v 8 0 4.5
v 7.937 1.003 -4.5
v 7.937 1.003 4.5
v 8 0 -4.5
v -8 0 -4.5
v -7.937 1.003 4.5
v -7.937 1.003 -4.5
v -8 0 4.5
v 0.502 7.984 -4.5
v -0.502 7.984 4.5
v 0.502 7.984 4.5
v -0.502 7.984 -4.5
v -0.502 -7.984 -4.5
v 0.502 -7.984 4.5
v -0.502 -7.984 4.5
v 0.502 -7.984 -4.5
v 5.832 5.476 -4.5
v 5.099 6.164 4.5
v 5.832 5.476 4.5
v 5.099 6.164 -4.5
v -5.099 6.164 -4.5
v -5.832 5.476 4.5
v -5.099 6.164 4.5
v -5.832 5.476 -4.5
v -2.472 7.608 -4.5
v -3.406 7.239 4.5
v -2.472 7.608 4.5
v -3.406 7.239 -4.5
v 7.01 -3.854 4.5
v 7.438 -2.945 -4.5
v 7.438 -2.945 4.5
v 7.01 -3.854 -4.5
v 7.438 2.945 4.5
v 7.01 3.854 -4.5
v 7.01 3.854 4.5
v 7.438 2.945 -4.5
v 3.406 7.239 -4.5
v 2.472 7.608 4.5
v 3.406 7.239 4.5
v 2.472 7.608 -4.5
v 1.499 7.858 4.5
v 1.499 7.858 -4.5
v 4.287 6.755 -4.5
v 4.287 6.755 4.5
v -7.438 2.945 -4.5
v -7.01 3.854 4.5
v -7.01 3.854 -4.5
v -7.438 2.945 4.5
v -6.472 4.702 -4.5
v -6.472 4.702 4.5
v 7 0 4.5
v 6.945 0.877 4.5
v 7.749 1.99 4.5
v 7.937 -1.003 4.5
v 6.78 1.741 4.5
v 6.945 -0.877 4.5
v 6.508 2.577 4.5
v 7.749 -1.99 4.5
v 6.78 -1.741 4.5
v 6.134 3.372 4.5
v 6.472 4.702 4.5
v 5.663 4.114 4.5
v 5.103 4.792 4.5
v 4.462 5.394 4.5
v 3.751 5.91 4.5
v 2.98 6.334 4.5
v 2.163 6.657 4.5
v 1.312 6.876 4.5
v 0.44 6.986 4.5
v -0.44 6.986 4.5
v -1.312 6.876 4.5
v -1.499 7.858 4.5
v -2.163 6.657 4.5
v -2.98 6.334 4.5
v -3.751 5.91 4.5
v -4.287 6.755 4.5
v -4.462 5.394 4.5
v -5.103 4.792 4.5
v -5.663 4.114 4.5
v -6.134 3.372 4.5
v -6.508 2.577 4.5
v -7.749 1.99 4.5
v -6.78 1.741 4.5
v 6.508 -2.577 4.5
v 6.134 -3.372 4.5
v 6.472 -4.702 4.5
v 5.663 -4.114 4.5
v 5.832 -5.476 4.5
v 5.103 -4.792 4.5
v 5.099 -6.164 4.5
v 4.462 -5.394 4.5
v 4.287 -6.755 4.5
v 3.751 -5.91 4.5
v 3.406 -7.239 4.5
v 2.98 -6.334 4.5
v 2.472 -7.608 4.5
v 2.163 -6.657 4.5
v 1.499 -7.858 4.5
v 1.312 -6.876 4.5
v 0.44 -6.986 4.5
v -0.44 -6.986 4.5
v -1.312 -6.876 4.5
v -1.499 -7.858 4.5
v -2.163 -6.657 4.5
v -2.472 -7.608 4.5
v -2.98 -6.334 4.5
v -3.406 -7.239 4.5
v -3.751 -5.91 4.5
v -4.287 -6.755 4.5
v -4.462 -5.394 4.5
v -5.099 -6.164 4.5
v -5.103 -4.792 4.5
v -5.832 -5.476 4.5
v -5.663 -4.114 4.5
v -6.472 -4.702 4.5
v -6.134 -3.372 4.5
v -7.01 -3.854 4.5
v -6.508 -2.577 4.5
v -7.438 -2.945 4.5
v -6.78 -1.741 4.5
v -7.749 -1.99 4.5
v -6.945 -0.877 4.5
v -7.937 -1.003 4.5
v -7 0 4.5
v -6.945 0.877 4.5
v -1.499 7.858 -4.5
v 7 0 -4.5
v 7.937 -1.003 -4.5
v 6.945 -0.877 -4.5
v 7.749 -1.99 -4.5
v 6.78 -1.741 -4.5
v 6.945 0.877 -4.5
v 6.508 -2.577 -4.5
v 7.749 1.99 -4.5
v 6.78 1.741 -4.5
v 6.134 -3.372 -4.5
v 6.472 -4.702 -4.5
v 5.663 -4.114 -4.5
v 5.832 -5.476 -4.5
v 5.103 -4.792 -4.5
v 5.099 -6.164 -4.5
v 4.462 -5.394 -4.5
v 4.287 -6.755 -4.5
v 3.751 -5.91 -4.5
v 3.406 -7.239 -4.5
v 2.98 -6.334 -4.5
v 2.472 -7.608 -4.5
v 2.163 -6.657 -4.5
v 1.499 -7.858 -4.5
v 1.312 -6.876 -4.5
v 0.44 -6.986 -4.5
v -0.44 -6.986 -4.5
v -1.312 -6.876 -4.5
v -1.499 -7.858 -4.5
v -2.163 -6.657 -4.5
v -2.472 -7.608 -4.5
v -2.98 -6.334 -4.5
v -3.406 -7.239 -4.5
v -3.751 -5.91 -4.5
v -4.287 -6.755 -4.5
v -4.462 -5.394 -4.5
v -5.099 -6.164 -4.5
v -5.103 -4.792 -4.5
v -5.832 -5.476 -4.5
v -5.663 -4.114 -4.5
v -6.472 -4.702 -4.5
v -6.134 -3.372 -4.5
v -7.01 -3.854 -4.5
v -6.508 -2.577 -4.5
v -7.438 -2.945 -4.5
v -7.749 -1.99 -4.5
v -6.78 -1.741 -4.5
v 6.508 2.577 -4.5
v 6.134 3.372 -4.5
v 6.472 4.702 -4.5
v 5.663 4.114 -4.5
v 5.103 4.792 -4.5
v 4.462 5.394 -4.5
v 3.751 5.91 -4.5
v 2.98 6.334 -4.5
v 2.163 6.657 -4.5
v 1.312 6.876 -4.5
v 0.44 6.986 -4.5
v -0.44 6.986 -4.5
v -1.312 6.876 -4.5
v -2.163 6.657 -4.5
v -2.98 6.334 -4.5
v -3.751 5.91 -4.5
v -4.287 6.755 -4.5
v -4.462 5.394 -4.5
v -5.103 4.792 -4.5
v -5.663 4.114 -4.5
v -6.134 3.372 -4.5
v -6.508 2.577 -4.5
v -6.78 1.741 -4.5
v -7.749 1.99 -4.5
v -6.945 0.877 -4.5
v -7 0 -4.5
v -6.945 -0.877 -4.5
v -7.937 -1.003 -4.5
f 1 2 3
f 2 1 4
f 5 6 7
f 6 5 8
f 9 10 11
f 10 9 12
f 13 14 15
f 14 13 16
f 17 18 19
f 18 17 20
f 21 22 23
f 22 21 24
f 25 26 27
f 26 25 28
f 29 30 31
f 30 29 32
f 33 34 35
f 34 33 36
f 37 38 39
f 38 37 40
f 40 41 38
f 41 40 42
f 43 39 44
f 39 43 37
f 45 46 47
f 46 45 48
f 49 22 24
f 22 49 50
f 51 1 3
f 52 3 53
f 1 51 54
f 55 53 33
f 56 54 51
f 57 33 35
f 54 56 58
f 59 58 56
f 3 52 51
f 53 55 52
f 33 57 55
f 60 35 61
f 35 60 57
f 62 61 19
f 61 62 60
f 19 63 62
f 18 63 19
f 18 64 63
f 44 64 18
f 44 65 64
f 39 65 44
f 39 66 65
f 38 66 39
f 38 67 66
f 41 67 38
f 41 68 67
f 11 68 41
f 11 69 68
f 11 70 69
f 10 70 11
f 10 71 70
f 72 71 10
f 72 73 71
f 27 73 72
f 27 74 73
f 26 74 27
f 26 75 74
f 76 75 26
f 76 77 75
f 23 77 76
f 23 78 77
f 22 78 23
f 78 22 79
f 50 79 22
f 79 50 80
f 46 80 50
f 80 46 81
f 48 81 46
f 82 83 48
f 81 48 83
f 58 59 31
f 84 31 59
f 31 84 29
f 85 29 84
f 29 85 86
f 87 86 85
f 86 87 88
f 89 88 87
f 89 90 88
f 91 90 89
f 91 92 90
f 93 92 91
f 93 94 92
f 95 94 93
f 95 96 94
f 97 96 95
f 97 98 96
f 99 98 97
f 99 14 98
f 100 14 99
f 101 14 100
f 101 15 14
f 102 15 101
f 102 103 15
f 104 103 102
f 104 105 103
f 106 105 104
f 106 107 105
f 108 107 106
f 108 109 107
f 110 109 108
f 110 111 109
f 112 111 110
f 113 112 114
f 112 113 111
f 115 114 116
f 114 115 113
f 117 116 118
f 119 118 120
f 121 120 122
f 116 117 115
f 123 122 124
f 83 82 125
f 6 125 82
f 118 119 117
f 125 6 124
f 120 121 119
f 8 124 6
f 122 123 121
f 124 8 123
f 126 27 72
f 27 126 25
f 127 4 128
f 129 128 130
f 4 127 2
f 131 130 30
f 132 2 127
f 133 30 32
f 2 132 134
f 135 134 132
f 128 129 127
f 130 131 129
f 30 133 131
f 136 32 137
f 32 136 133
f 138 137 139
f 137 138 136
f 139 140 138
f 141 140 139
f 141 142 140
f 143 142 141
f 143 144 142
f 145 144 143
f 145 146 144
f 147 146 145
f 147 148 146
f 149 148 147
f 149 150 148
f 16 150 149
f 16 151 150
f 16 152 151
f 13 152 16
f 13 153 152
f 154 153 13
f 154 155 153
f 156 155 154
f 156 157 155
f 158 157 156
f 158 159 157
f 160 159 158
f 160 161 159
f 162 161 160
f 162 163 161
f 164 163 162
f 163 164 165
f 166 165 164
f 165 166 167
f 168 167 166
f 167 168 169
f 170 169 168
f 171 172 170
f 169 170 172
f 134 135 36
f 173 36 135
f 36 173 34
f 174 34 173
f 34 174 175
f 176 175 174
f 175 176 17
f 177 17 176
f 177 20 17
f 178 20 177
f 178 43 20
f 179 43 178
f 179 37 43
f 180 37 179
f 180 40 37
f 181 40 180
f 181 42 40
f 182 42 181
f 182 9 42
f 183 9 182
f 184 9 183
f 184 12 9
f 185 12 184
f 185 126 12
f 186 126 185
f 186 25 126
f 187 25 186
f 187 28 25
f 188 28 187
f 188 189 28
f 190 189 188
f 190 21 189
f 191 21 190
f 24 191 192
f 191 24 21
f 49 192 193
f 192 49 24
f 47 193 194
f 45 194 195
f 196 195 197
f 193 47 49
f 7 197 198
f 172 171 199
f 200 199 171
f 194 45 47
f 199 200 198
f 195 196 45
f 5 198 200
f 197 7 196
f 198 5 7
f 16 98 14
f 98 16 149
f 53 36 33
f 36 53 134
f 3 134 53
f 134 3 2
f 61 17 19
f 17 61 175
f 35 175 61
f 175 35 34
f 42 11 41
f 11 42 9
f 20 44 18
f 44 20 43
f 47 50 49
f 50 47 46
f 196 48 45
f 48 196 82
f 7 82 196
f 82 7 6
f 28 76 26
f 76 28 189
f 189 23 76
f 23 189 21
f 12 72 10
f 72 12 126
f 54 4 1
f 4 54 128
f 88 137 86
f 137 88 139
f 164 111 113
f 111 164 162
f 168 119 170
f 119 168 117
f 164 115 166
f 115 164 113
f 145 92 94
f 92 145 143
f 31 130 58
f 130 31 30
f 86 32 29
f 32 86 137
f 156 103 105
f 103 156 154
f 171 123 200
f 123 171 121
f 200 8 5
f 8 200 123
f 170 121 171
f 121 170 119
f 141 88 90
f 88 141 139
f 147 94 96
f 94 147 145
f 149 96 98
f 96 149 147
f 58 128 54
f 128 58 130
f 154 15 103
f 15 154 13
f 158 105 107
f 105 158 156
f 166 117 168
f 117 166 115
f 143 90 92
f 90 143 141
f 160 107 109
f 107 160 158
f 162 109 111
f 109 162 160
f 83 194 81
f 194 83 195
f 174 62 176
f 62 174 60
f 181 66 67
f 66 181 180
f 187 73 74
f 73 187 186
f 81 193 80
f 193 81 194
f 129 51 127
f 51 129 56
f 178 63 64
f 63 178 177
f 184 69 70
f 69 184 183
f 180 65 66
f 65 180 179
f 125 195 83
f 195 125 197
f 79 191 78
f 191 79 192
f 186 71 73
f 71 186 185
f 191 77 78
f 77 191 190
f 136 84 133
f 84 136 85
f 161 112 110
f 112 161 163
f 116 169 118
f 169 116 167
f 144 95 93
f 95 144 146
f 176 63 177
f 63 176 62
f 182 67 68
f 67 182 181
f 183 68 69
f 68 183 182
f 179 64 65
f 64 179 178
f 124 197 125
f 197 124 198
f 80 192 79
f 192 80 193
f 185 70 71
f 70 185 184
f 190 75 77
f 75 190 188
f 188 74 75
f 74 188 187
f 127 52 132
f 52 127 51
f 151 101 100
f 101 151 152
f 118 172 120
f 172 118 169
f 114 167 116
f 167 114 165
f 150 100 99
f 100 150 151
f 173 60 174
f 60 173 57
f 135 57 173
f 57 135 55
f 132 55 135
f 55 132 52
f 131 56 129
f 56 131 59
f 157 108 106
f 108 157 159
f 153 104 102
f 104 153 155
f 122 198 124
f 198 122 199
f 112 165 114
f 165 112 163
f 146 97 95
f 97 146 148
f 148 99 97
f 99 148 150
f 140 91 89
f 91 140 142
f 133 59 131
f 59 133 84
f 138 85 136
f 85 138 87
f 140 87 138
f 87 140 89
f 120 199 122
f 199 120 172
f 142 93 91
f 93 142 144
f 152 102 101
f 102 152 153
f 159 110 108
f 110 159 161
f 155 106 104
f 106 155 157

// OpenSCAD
$fn = 50;


difference() {
	union() {
		translate(v = [0, 0, -4.5000000000]) {
			cylinder(h = 9, r = 8.0000000000);
		}
	}
	union() {
		translate(v = [0, 0, -100.0000000000]) {
			cylinder(h = 200, r = 7);
		}
	}
}
